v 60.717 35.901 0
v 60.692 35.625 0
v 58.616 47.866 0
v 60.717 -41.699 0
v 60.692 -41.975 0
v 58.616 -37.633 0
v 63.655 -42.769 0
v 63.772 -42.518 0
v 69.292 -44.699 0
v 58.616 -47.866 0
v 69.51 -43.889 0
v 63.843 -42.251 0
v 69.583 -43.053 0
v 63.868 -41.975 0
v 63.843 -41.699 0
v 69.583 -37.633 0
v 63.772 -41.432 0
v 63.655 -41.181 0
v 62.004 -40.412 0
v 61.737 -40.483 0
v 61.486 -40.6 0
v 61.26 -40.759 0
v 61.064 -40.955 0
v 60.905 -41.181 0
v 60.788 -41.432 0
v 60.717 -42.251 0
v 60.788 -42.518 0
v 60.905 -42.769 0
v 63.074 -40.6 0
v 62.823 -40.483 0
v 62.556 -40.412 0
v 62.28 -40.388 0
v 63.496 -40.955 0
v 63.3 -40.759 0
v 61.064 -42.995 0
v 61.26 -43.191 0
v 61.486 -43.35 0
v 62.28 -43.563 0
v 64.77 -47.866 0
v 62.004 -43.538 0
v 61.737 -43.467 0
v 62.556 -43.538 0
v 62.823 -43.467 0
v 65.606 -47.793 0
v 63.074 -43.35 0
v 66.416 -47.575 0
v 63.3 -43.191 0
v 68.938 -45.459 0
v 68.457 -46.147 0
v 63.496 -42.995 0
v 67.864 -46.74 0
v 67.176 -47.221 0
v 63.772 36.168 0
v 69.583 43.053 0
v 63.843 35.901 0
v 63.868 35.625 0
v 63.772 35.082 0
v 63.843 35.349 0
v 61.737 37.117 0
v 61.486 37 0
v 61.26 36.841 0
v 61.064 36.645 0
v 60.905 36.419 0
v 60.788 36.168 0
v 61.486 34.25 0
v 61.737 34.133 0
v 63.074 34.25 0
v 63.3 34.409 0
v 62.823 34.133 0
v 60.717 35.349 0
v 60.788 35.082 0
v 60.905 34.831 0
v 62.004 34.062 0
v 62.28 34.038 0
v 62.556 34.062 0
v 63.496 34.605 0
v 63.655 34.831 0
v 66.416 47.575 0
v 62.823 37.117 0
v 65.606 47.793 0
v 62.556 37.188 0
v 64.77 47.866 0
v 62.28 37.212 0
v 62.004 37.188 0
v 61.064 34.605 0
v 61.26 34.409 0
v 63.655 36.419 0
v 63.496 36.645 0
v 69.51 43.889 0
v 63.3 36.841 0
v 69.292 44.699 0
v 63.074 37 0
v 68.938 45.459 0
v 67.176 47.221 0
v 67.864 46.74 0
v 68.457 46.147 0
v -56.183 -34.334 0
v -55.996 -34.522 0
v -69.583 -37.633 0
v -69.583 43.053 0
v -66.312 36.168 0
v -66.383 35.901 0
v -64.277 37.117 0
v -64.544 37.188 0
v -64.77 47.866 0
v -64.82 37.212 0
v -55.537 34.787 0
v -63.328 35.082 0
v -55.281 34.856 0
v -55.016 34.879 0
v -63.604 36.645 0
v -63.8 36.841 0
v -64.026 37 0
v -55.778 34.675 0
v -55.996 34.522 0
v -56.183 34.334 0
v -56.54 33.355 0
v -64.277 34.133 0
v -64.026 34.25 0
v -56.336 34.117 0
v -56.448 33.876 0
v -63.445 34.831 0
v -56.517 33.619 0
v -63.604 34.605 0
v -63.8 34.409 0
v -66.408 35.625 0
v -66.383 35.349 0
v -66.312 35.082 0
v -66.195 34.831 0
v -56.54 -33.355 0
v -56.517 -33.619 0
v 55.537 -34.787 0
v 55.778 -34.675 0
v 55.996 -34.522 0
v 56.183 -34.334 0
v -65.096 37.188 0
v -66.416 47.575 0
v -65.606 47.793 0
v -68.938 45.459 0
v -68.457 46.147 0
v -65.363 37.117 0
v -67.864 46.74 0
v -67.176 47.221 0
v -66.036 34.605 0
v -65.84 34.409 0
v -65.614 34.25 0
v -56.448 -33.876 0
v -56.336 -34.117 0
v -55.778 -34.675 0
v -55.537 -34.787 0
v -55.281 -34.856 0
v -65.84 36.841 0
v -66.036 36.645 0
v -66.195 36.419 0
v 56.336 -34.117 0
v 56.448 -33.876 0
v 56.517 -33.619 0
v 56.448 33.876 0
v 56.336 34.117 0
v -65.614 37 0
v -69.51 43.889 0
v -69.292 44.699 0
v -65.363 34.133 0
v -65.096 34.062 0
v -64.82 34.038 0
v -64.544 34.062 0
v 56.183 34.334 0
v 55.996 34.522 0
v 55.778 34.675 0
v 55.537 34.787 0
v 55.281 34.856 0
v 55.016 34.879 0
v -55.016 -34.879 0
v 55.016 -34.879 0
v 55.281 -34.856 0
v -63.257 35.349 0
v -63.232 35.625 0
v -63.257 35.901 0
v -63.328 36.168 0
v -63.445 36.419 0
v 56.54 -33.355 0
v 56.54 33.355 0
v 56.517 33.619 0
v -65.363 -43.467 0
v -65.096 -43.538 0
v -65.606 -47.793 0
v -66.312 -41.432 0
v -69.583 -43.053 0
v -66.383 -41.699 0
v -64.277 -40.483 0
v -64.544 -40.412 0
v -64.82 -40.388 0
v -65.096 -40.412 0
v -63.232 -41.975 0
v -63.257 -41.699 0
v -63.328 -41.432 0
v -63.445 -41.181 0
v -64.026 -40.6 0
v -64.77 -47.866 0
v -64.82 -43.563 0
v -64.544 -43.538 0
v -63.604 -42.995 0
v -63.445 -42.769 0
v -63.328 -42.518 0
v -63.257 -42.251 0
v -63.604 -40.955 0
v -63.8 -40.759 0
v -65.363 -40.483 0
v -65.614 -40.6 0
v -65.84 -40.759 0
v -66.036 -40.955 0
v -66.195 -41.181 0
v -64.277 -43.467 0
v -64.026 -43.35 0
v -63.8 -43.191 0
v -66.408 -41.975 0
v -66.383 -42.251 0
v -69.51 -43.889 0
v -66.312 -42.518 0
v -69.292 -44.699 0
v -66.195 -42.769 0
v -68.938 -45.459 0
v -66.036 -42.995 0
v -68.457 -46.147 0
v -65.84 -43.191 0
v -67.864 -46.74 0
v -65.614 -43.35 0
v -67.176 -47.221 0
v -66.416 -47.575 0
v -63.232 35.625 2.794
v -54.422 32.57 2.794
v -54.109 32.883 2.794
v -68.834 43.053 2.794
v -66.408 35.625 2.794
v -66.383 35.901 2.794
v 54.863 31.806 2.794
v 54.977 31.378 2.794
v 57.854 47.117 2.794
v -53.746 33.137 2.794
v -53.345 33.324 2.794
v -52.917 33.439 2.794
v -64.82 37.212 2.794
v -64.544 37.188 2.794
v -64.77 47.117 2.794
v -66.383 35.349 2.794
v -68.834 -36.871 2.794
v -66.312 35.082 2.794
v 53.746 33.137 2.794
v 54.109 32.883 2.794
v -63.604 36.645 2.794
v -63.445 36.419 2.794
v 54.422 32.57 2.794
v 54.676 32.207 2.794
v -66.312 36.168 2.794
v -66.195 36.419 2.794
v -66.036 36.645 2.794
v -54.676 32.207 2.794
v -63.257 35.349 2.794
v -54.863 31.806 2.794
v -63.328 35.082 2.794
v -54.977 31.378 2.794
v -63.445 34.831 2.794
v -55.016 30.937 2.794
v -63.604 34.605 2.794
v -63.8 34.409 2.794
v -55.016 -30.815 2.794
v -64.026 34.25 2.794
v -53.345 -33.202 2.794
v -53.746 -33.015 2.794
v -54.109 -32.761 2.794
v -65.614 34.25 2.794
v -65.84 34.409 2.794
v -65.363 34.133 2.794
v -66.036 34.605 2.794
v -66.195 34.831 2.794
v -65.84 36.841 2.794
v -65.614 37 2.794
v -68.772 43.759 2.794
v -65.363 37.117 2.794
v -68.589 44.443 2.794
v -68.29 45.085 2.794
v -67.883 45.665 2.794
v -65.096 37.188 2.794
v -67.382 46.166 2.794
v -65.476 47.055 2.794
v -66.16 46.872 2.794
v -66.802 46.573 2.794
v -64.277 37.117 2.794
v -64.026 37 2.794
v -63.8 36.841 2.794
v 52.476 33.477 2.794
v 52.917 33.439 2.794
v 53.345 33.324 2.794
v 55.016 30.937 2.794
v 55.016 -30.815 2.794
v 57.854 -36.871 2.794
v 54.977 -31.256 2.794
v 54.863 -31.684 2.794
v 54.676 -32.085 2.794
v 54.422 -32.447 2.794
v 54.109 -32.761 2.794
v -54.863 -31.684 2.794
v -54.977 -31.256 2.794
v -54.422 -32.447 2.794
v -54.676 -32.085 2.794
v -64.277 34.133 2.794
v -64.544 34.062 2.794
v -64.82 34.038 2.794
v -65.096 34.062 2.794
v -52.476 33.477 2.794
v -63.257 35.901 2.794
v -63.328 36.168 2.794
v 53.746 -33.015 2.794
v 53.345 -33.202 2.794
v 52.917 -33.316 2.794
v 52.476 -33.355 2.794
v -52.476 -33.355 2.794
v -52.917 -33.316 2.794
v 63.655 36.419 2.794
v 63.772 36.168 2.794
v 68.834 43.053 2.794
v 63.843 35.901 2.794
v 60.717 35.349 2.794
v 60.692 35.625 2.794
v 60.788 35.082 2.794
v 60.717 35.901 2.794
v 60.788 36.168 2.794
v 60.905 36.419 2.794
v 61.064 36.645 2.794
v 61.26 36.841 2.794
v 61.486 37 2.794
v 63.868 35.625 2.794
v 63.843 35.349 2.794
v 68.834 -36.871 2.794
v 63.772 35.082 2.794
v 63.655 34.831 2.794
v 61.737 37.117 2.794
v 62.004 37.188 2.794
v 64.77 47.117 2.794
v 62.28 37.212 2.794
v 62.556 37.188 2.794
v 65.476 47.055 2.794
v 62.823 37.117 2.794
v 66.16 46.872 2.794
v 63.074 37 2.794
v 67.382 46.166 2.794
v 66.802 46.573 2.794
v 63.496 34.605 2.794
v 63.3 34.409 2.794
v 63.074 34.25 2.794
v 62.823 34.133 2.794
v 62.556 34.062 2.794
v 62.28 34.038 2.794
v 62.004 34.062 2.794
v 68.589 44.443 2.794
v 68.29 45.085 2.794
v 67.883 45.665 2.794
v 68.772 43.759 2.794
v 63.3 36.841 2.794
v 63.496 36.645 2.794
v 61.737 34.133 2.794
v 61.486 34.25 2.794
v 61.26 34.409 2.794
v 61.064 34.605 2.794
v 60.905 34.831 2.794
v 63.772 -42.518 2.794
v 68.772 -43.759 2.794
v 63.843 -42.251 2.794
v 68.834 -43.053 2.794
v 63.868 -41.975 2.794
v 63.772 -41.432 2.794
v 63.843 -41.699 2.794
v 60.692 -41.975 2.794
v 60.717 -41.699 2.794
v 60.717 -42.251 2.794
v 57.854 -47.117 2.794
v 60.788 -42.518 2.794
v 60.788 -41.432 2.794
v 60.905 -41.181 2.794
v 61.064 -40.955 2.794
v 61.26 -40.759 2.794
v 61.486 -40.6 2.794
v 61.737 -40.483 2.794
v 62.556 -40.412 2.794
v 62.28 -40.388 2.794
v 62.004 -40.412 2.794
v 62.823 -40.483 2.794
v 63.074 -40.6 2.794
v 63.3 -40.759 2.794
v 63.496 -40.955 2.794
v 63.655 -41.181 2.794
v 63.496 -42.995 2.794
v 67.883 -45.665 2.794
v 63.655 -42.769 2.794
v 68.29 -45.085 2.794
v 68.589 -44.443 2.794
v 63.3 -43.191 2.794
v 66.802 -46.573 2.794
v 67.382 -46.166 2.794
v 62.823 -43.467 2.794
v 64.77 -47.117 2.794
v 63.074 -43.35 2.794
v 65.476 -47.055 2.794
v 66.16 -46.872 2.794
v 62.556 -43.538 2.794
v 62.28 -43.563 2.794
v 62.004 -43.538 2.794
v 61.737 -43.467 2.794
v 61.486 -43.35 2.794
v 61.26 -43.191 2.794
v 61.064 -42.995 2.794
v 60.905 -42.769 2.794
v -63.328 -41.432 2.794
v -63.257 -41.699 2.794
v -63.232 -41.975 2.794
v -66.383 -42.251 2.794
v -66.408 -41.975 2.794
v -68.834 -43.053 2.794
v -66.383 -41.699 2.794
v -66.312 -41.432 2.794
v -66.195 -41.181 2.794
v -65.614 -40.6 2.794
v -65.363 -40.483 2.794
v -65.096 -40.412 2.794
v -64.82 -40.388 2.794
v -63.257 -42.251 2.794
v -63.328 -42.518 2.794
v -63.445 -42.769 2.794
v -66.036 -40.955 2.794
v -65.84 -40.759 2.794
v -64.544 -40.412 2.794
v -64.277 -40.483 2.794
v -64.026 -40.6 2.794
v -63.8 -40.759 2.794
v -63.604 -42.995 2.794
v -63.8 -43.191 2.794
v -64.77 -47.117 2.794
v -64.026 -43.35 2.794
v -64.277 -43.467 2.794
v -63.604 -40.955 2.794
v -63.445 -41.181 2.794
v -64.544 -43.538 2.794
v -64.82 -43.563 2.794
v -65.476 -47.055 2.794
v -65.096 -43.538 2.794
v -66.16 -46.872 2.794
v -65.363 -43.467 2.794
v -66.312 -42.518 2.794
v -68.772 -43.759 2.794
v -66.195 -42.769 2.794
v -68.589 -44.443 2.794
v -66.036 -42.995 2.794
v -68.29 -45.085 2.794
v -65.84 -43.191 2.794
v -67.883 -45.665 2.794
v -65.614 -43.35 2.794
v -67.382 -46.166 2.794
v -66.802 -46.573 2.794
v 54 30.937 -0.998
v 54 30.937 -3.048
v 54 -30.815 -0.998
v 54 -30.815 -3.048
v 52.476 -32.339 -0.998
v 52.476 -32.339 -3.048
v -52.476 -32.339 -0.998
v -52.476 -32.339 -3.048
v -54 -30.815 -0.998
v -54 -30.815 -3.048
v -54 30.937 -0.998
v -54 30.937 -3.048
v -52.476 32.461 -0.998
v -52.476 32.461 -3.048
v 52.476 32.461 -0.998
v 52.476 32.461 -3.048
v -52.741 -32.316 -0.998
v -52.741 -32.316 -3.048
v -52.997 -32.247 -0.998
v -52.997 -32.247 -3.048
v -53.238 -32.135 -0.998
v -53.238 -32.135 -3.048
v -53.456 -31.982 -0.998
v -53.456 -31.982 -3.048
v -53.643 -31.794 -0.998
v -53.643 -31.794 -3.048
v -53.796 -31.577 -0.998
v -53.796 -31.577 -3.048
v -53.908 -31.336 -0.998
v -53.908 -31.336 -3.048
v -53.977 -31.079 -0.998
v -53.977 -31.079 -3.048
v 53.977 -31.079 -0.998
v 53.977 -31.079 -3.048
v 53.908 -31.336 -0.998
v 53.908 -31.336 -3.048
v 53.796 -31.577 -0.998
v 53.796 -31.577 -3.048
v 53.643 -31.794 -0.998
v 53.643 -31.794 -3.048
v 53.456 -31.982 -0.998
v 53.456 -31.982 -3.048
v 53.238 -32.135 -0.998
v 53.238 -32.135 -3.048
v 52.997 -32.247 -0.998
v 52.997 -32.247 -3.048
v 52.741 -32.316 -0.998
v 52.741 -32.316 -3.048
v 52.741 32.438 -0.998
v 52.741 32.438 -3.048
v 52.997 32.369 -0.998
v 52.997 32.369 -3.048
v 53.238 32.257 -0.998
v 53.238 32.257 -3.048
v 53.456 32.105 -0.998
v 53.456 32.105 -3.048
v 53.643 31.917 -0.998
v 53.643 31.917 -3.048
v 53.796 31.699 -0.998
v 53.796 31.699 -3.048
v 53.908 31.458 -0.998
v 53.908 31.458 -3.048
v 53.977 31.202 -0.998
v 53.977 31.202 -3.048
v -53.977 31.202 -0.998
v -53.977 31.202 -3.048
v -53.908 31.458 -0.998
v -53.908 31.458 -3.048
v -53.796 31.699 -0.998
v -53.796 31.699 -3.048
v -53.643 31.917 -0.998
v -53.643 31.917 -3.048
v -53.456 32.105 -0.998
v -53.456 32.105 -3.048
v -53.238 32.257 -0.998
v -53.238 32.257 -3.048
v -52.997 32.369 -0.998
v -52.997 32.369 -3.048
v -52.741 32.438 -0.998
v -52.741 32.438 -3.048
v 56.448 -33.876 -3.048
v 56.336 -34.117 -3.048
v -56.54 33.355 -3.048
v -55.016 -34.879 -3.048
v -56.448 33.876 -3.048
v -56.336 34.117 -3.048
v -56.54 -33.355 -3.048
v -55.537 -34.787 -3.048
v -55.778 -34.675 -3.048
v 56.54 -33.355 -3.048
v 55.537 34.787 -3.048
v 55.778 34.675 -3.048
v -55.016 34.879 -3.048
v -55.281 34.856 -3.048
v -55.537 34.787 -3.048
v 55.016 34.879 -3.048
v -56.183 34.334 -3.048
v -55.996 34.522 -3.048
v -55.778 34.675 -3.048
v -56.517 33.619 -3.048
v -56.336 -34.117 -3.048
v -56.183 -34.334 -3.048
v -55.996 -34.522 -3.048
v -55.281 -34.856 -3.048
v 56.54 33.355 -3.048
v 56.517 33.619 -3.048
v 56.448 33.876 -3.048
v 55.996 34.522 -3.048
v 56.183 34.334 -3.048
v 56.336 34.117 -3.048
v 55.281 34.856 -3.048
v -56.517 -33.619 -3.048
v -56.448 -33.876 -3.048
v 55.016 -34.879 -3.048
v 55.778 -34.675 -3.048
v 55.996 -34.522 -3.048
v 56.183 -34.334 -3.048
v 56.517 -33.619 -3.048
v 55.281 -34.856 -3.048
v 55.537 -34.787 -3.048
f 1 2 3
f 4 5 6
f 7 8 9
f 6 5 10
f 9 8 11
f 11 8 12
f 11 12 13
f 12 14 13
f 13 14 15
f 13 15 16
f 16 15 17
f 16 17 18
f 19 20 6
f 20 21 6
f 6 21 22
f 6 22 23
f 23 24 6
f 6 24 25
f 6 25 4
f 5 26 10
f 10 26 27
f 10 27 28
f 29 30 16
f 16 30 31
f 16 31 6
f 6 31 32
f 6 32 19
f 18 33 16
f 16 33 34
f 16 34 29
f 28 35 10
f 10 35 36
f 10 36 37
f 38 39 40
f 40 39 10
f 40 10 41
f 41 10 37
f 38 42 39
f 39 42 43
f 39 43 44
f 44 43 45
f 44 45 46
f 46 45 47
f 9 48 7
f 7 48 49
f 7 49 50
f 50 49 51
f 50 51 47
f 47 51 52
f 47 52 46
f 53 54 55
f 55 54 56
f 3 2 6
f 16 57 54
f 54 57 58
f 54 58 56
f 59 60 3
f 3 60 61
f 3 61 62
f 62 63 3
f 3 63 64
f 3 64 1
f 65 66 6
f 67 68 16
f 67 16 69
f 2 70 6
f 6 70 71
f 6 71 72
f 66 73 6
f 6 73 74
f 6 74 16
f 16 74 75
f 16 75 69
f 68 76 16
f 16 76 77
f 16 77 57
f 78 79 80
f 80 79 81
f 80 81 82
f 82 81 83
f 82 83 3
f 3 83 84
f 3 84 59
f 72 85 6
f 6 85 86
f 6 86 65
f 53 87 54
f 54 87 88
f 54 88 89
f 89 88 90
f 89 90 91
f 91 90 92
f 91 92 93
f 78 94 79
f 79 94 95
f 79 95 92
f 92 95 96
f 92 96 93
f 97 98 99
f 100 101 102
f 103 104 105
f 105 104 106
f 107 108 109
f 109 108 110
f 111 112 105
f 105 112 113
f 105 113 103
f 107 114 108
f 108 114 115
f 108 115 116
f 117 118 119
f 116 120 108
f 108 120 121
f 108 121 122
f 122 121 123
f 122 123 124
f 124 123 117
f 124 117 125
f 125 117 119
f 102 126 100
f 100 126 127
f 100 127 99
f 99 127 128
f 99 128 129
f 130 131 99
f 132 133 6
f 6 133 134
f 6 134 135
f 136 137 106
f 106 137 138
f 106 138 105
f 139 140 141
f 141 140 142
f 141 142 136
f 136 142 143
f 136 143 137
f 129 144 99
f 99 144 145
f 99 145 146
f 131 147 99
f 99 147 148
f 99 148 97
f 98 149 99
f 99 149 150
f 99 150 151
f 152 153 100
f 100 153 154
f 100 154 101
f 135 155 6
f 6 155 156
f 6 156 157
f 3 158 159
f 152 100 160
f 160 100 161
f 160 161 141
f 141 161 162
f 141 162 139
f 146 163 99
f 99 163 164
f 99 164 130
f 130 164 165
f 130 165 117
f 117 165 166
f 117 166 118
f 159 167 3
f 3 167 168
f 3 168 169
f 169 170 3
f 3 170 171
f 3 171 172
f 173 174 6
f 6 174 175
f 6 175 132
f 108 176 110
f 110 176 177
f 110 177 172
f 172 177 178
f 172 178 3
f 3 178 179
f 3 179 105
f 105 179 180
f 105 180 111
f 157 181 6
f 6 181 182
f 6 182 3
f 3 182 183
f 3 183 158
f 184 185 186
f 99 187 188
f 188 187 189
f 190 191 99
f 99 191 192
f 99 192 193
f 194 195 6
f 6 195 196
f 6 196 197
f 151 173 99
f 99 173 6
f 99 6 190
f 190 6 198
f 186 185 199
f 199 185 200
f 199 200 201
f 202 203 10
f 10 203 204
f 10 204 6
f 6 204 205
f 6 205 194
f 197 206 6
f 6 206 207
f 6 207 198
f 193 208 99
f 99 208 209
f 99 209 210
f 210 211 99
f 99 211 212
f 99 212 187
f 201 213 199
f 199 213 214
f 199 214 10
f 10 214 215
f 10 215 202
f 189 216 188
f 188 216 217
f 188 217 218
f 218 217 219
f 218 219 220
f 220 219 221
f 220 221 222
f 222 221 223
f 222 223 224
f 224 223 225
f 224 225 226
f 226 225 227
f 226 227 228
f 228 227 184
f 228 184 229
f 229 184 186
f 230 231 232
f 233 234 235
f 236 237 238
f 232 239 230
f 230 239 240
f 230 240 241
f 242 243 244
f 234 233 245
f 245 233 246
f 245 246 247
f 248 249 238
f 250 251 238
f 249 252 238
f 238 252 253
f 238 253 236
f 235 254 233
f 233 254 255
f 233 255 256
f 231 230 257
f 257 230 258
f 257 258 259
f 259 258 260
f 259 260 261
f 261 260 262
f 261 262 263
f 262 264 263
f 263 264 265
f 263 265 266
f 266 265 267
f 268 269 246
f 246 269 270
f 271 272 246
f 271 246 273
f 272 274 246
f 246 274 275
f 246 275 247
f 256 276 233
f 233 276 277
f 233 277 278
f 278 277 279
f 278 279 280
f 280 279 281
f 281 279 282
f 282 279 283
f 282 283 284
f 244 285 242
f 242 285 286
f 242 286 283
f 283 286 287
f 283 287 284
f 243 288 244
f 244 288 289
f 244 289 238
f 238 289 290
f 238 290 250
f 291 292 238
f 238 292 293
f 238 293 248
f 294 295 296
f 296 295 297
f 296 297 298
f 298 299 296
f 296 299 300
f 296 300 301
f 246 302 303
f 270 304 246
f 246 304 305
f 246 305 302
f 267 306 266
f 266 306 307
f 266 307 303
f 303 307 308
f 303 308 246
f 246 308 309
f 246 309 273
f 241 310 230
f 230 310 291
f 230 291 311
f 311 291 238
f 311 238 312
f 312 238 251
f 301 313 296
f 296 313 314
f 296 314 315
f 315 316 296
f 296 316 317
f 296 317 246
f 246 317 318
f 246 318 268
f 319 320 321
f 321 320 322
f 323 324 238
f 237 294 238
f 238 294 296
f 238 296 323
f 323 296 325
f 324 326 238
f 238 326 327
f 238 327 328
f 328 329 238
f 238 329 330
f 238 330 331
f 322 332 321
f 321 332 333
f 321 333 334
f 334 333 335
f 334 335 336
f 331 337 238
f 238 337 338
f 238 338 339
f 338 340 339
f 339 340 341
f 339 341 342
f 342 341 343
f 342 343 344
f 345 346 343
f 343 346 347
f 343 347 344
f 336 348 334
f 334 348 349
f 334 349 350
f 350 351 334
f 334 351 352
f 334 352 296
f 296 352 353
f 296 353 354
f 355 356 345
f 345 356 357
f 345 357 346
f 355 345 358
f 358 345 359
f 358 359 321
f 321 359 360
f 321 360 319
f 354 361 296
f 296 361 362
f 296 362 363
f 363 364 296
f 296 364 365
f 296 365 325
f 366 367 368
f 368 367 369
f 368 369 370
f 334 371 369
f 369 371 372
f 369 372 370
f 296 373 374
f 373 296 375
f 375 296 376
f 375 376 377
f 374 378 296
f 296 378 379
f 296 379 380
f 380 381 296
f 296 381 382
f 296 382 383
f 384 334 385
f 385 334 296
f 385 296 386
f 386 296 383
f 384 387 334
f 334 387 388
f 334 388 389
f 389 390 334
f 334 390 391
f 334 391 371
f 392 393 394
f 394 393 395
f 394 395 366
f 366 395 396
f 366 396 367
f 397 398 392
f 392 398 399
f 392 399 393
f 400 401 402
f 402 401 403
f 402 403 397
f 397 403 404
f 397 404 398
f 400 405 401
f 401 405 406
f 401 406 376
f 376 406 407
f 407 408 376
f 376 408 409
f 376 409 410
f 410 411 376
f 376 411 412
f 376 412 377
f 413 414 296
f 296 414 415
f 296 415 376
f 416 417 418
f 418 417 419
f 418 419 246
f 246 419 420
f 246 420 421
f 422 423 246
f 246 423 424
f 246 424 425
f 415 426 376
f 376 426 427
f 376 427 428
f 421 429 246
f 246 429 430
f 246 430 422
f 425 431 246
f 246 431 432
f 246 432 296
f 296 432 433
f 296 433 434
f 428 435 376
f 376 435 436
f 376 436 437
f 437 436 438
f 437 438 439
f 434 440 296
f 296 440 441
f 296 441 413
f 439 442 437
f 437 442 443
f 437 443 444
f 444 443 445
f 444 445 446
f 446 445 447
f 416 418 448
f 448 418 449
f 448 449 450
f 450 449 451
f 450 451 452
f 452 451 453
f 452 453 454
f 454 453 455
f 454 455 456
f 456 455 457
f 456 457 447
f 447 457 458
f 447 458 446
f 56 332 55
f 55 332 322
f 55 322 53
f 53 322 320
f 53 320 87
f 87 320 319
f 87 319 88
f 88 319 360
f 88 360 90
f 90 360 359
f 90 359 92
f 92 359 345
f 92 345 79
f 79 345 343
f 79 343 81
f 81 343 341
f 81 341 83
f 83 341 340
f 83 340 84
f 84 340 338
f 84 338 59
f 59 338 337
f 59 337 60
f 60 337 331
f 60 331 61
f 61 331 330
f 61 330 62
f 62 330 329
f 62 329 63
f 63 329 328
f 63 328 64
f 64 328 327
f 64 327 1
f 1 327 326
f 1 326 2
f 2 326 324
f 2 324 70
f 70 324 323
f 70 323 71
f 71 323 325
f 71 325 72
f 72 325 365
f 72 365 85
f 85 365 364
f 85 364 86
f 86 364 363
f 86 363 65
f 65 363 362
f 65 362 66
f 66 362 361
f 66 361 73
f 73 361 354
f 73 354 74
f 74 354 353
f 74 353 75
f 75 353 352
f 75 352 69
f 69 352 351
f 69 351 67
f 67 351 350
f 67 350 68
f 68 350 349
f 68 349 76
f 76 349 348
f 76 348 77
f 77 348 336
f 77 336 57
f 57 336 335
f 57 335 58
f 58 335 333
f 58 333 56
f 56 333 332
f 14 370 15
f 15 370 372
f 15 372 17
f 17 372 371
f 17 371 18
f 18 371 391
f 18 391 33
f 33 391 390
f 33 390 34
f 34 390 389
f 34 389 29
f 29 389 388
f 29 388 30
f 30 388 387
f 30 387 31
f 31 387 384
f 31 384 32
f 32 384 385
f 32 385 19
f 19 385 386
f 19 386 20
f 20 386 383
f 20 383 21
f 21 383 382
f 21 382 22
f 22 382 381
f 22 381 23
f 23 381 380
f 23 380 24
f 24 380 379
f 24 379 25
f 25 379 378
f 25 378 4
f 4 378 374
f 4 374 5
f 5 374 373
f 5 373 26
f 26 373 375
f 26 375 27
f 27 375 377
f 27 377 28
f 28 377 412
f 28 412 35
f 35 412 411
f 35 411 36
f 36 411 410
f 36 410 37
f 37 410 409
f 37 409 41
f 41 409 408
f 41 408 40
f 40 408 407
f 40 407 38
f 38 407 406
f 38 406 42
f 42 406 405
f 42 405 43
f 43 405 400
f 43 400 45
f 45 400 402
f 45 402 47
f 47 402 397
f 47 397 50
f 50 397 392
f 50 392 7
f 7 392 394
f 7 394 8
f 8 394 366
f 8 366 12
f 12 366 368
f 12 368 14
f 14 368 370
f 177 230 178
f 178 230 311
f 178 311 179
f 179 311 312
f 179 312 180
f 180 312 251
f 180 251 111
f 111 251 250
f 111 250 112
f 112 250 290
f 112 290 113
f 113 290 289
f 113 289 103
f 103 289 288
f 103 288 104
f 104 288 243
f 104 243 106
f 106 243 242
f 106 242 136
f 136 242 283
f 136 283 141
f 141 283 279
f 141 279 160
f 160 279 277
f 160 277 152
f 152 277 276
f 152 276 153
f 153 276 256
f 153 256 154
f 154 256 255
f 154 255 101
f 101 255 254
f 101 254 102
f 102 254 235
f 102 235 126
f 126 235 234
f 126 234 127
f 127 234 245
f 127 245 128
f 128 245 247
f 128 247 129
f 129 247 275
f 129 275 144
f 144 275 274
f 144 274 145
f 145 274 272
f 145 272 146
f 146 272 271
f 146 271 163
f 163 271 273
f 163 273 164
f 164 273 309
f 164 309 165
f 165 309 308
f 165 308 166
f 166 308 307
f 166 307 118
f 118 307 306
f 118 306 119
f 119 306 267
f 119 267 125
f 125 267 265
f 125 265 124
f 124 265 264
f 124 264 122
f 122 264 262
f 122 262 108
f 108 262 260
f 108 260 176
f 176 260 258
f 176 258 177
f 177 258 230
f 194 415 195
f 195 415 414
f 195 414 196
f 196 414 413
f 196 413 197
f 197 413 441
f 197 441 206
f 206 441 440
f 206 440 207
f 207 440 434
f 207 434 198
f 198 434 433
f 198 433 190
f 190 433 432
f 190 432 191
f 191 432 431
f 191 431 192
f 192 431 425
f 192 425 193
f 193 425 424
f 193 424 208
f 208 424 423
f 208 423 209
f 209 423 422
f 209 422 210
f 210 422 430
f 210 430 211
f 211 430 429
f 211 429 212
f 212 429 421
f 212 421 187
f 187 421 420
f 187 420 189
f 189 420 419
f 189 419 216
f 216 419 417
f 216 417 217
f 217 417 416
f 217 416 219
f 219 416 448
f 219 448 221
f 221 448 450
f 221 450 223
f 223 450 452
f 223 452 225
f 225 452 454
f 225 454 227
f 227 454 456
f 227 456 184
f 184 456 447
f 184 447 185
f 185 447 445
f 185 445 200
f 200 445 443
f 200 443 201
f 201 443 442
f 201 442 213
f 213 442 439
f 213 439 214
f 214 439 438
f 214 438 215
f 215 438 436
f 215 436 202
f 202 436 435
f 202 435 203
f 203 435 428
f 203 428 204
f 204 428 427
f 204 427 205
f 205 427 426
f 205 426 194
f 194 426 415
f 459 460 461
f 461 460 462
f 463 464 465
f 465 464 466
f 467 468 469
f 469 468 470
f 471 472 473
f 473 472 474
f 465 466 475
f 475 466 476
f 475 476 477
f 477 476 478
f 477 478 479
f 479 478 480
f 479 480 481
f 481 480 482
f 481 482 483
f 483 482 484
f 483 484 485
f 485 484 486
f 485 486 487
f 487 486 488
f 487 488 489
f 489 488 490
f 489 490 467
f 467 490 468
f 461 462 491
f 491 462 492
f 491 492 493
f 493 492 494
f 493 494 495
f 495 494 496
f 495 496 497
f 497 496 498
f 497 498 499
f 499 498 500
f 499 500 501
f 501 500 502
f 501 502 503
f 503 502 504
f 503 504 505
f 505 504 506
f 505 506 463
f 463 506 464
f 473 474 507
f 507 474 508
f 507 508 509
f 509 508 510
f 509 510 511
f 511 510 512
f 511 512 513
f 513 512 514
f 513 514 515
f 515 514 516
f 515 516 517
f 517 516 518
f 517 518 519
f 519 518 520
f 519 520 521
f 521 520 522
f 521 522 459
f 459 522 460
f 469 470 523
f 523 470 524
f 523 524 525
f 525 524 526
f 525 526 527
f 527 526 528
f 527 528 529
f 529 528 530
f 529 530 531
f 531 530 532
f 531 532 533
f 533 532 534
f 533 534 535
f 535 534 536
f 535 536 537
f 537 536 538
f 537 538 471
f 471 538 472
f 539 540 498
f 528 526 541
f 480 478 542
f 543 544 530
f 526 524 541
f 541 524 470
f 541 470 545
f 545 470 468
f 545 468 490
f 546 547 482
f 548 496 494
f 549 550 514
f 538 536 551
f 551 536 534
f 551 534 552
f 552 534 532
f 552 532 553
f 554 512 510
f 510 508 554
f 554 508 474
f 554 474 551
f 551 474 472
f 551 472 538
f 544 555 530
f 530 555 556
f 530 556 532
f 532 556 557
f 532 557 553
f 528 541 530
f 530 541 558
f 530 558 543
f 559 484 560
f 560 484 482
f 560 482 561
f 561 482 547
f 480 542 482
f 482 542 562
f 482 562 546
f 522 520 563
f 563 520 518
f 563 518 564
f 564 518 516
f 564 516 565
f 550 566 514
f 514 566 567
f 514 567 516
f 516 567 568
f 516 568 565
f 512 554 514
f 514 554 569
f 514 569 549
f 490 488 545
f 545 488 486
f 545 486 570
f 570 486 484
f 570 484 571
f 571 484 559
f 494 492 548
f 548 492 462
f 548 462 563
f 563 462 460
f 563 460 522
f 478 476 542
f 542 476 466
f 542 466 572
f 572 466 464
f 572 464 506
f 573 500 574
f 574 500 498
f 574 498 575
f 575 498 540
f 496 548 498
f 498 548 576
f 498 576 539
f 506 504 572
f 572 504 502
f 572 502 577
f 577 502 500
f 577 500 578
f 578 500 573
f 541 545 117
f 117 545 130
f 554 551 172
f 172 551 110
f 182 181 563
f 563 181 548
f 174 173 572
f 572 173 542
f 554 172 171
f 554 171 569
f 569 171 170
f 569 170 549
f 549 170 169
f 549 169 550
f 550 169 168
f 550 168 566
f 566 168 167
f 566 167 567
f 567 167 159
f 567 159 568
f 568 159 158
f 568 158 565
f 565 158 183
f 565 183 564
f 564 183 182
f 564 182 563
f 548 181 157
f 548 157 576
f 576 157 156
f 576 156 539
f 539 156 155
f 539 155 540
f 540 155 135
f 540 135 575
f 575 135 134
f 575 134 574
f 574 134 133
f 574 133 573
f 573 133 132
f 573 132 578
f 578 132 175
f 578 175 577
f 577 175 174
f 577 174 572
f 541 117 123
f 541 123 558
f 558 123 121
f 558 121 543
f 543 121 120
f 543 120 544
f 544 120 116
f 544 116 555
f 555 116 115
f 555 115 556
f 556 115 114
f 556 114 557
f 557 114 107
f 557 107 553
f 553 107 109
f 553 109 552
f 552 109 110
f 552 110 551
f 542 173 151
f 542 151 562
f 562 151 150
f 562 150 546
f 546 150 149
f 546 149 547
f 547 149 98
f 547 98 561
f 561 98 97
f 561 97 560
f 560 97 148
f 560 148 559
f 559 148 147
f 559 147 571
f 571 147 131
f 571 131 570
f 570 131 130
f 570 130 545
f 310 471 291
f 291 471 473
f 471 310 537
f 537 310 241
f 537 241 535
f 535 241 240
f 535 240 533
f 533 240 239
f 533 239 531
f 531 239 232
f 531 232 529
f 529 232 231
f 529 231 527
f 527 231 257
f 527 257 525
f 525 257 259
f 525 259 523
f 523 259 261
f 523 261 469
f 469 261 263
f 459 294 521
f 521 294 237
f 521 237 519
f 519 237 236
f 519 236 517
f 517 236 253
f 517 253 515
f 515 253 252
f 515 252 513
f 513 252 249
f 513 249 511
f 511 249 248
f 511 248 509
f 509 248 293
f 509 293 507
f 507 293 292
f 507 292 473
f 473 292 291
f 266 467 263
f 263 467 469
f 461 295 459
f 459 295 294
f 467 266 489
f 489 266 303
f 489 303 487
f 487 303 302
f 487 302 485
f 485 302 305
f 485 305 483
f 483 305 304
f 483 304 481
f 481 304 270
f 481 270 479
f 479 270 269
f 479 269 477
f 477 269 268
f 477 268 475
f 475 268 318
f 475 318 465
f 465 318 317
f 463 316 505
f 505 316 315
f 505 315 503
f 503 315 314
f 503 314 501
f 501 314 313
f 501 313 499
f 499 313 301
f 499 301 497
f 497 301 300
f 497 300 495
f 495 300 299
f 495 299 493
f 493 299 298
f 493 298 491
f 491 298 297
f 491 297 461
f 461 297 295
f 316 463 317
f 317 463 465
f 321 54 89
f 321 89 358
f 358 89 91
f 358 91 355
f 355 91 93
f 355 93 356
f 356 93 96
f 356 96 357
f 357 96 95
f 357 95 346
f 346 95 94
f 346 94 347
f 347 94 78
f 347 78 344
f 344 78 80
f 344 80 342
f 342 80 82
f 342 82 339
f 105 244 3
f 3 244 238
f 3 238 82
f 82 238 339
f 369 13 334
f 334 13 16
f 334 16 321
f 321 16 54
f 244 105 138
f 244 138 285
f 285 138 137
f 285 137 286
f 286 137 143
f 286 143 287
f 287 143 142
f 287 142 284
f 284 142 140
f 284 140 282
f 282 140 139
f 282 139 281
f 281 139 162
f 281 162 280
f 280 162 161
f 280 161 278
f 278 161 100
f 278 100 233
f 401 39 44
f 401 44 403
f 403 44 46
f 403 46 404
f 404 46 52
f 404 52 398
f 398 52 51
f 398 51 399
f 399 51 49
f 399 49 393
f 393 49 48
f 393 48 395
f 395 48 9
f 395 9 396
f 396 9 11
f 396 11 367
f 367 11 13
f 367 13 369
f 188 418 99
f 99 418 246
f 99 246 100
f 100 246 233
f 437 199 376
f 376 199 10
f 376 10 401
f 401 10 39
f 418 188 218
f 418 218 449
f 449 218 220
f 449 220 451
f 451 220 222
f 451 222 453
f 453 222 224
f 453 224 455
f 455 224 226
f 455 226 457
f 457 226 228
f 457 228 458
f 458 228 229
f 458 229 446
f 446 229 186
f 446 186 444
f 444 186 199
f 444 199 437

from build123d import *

# Parameters (mm, degrees)
SKETCH1_W                    = 139.7
SKETCH1_H                    = 96.266
BOSS_EXTRUDE1_DEPTH          = 2.794
F_1_8_0_125_DIAMETER_HOLE1_D = 3.175
SKETCH4_W                    = 107.9999999
SKETCH4_H                    = 64.79999994
CUT_EXTRUDE1_DEPTH           = 85.874110452
FILLET1_R                    = 1.524
FILLET2_R                    = 5.08
BOSS_EXTRUDE2_START          = 3.048
SKETCH5_W                    = 113.0799999
SKETCH5_H                    = 69.75759988
BOSS_EXTRUDE2_DEPTH          = 3.048
FILLET3_R                    = 1.524
CHAMFER1_SIZE                = 1.016
CHAMFER1_SIZE2               = 3.79176362
CHAMFER2_SIZE                = 1.016
CHAMFER2_SIZE_2              = 3.79176362


with BuildPart() as part:
    # Sketch1 → Boss-Extrude1 (new body)
    with BuildSketch(Plane.XY):
        Rectangle(SKETCH1_W, SKETCH1_H)
    extrude(amount=BOSS_EXTRUDE1_DEPTH)

    # 1/8 (0.125) Diameter Hole1 (through all)
    with Locations(Plane.XY.offset(2.794)):
        with Locations((-64.82, -41.975), (-64.82, 35.625), (62.28, -41.975), (62.28, 35.625)):
            Hole(F_1_8_0_125_DIAMETER_HOLE1_D / 2)

    # Sketch4 → Cut-Extrude1 (cut, through all)
    with BuildSketch(Plane.XY.offset(2.794)):
        with Locations((0, 0.06120003)):
            Rectangle(SKETCH4_W, SKETCH4_H)
    extrude(amount=-CUT_EXTRUDE1_DEPTH, mode=Mode.SUBTRACT)

    # Fillet1
    fillet1_edges = [part.edges().sort_by_distance(p)[0] for p in [
        (53.99999995, 32.4612, 1.397),
        (53.99999995, -32.33879994, 1.397),
        (-53.99999995, -32.33879994, 1.397),
        (-53.99999995, 32.4612, 1.397),
    ]]
    fillet(fillet1_edges, radius=FILLET1_R)

    # Fillet2
    fillet2_edges = [part.edges().sort_by_distance(p)[0] for p in [
        (69.85, -48.133, 1.397),
        (-69.85, -48.133, 1.397),
        (-69.85, 48.133, 1.397),
        (69.85, 48.133, 1.397),
    ]]
    fillet(fillet2_edges, radius=FILLET2_R)

    # Sketch5 → Boss-Extrude2 (add)
    with BuildSketch(Plane(origin=(0, 0, 0), x_dir=(-1, 0, 0), z_dir=(0, 0, -1)).offset(BOSS_EXTRUDE2_START)):
        Rectangle(SKETCH5_W, SKETCH5_H)
        with BuildLine():
            Line((-53.99999995, -30.81479994), (-53.99999995, 30.9372))
            ThreePointArc((-53.99999995, 30.9372), (-53.553630685, 32.014830735), (-52.47599995, 32.4612))
            Line((-52.47599995, 32.4612), (52.47599995, 32.4612))
            ThreePointArc((52.47599995, 32.4612), (53.553630685, 32.014830735), (53.99999995, 30.9372))
            Line((53.99999995, 30.9372), (53.99999995, -30.81479994))
            ThreePointArc((53.99999995, -30.81479994), (53.553630685, -31.892430675), (52.47599995, -32.33879994))
            Line((52.47599995, -32.33879994), (-52.47599995, -32.33879994))
            ThreePointArc((-52.47599995, -32.33879994), (-53.553630685, -31.892430675), (-53.99999995, -30.81479994))
        make_face(mode=Mode.SUBTRACT)
    extrude(amount=-BOSS_EXTRUDE2_DEPTH)

    # Fillet3
    fillet3_edges = [part.edges().sort_by_distance(p)[0] for p in [
        (-56.53999995, -34.87879994, -1.524),
        (-56.53999995, 34.87879994, -1.524),
        (56.53999995, 34.87879994, -1.524),
        (56.53999995, -34.87879994, -1.524),
    ]]
    fillet(fillet3_edges, radius=FILLET3_R)

    # Chamfer1
    chamfer1_edges = [part.edges().sort_by_distance(p)[0] for p in [
        (0, -32.33879994, 2.794),
        (-53.99999995, 0.06120003, 2.794),
        (53.99999995, 0.06120003, 2.794),
        (0, 32.4612, 2.794),
        (-53.553630685, -31.892430675, 2.794),
        (53.553630685, -31.892430675, 2.794),
        (53.553630685, 32.014830735, 2.794),
        (-53.553630685, 32.014830735, 2.794),
    ]]
    chamfer1_side = [part.faces().sort_by_distance(p)[0] for p in [
        (0, -46.436437807, 2.794),
    ]]
    chamfer(chamfer1_edges, length=CHAMFER1_SIZE, length2=CHAMFER1_SIZE2, reference=chamfer1_side[0])

    # Chamfer2
    # the kernel refuses this chamfer: 3.79176362, 1.016 mm, written as the material it takes off along each edge
    with BuildSketch(Plane(origin=(-69.85, 43.053, 2.794), x_dir=(0.9905000388259543, 0, 0.13751244702129017), z_dir=(0, -1, 0)), Plane(origin=(69.85, -43.053, 2.794), x_dir=(-0.9905000388259543, 0, 0.13751244702129017), z_dir=(0, 1, 0))) as chamfer2_piece_1:
        Polygon((CHAMFER2_SIZE * 0.990500038826, -CHAMFER2_SIZE * 0.137512447021), (-CHAMFER2_SIZE_2 * 0.137512447039, -CHAMFER2_SIZE_2 * 0.990500038954), (0, 0), align=None)
    extrude(amount=86.106, mode=Mode.SUBTRACT)
    with BuildSketch(Plane(origin=(-64.77, -43.053, 2.794), x_dir=(0, -1, 0), z_dir=(1, 0, 0))) as chamfer2_piece_2:
        Polygon((5.08 - CHAMFER2_SIZE, 0), (5.08, CHAMFER2_SIZE_2), (5.08, 0), align=None)
    revolve(axis=Axis((-64.77, -43.053, 2.794), (0, 0, -1)), revolution_arc=90, mode=Mode.SUBTRACT)
    with BuildSketch(Plane(origin=(-64.77, -48.133, 2.794), x_dir=(0, 0.990500038825954, 0.13751244702129148), z_dir=(1, 0, 0)), Plane(origin=(64.77, 48.133, 2.794), x_dir=(0, -0.990500038825954, 0.13751244702129148), z_dir=(-1, 0, 0))) as chamfer2_piece_3:
        Polygon((CHAMFER2_SIZE * 0.990500038826, -CHAMFER2_SIZE * 0.137512447021), (-CHAMFER2_SIZE_2 * 0.137512447039, -CHAMFER2_SIZE_2 * 0.990500038954), (0, 0), align=None)
    extrude(amount=129.54, mode=Mode.SUBTRACT)
    with BuildSketch(Plane(origin=(64.77, -43.053, 2.794), x_dir=(0, -1, 0), z_dir=(-1, 0, 0))) as chamfer2_piece_4:
        Polygon((5.08 - CHAMFER2_SIZE, 0), (5.08, -CHAMFER2_SIZE_2), (5.08, 0), align=None)
    revolve(axis=Axis((64.77, -43.053, 2.794), (0, 0, 1)), revolution_arc=90, mode=Mode.SUBTRACT)
    with BuildSketch(Plane(origin=(64.77, 43.053, 2.794), x_dir=(1, 0, 0), z_dir=(0, -1, 0))) as chamfer2_piece_5:
        Polygon((5.08 - CHAMFER2_SIZE, 0), (5.08, -CHAMFER2_SIZE_2), (5.08, 0), align=None)
    revolve(axis=Axis((64.77, 43.053, 2.794), (0, 0, 1)), revolution_arc=90, mode=Mode.SUBTRACT)
    with BuildSketch(Plane(origin=(-64.77, 43.053, 2.794), x_dir=(-1, 0, 0), z_dir=(0, -1, 0))) as chamfer2_piece_6:
        Polygon((5.08 - CHAMFER2_SIZE, 0), (5.08, CHAMFER2_SIZE_2), (5.08, 0), align=None)
    revolve(axis=Axis((-64.77, 43.053, 2.794), (0, 0, -1)), revolution_arc=90, mode=Mode.SUBTRACT)


solid = part.part
